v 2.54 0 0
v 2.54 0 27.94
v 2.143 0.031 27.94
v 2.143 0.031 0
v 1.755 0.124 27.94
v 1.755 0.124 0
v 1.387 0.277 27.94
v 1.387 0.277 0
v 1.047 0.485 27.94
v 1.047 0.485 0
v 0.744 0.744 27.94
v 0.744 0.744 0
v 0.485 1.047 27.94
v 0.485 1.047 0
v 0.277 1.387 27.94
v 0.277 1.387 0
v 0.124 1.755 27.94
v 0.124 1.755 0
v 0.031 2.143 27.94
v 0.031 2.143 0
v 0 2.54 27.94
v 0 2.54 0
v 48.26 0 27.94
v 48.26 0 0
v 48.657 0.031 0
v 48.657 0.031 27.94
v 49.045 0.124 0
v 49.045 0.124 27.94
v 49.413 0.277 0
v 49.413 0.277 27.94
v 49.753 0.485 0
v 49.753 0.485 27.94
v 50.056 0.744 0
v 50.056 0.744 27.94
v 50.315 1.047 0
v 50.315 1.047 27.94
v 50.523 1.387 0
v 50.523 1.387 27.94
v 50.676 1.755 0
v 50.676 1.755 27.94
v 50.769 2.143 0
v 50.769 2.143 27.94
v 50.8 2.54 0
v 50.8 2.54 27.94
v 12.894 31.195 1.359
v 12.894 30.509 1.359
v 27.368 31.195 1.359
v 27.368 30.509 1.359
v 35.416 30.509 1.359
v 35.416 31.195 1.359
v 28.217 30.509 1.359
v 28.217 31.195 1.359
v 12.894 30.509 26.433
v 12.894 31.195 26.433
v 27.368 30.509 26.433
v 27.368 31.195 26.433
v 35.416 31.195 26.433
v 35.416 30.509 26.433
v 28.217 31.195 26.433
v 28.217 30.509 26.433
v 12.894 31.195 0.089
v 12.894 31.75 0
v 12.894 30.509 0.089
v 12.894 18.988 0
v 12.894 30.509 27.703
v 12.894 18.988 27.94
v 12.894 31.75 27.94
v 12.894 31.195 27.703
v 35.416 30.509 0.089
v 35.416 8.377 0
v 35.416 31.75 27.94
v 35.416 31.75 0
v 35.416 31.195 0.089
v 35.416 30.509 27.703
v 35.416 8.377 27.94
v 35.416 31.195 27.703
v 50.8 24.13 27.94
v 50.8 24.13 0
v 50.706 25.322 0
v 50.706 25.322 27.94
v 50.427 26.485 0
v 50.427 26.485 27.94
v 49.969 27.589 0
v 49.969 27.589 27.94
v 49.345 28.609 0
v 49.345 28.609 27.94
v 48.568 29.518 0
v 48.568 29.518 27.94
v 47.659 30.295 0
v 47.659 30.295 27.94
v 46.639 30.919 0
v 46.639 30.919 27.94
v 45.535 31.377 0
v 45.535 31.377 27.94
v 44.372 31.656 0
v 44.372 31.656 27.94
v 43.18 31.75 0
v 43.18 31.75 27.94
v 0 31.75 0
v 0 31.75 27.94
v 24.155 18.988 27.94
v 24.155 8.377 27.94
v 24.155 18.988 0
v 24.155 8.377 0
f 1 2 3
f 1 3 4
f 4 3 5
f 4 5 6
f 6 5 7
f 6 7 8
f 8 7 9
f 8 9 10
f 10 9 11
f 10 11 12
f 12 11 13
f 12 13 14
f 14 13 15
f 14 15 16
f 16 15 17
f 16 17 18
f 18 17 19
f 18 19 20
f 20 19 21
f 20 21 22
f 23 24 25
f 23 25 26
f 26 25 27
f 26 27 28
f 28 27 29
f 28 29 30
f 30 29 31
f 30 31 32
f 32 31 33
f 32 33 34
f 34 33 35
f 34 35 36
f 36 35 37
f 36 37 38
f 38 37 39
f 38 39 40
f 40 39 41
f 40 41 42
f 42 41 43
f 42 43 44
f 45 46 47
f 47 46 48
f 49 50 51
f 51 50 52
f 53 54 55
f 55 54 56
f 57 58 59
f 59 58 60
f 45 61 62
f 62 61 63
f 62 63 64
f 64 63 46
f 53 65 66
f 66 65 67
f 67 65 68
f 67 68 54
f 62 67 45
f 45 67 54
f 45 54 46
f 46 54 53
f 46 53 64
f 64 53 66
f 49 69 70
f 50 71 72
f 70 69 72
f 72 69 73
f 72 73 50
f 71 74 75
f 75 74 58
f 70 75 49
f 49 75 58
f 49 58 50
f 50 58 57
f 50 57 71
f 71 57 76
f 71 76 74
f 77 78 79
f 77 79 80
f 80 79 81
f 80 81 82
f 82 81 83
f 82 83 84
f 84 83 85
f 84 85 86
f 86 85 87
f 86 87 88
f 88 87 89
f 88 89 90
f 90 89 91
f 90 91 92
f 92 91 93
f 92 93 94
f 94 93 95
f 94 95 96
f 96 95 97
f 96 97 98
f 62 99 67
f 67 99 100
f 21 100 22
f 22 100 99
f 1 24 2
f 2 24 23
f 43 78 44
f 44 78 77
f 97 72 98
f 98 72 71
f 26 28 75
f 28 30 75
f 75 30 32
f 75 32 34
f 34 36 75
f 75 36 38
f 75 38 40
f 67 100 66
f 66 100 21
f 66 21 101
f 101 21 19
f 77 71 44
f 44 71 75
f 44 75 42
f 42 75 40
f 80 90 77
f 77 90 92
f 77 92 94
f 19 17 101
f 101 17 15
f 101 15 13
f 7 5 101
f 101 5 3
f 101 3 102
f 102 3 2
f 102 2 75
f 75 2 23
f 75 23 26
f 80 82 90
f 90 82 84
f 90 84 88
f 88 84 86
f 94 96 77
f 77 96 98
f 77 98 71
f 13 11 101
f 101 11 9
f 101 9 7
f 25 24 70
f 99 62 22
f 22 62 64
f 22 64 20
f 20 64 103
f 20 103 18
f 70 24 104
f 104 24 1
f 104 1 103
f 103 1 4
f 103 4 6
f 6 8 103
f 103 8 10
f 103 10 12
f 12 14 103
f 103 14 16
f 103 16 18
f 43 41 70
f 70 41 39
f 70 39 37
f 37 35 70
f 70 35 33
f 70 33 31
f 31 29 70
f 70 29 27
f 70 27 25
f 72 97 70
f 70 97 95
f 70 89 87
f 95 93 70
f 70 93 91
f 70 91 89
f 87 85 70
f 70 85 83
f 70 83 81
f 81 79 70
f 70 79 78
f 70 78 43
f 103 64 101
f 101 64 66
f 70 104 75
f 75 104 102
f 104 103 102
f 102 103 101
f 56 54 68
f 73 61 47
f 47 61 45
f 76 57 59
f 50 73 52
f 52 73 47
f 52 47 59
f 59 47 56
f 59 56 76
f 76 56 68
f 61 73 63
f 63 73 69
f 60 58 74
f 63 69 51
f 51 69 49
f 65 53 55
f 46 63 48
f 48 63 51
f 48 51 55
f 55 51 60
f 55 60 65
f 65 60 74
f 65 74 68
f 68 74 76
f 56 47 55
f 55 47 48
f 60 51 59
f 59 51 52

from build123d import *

# Parameters (mm, degrees)
SKETCH2_W           = 50.8
SKETCH2_H           = 31.75
BOSS_EXTRUDE1_DEPTH = 27.94
CUT_EXTRUDE2_DEPTH  = 27.94
FILLET1_R           = 7.62
SKETCH5_W           = 1.27
SKETCH5_H           = 0.685488516
BOSS_EXTRUDE2_DEPTH = 27.94
SKETCH6_W           = 0.849135511
SKETCH6_H           = 0.685488516
BOSS_EXTRUDE3_DEPTH = 25.4
FILLET2_R           = 2.54
FILLET3_R           = 2.54


with BuildPart() as part:
    # Sketch2 → Boss-Extrude1 (new body)
    with BuildSketch(Plane.XY):
        with Locations((25.4, 15.875)):
            Rectangle(SKETCH2_W, SKETCH2_H)
    extrude(amount=BOSS_EXTRUDE1_DEPTH)

    # Sketch3 → Cut-Extrude2 (cut)
    with BuildSketch(Plane.XY.offset(27.94)):
        Polygon((24.154806831, 18.987982921), (24.154806831, 8.376771572), (35.415684182, 8.376771572), (35.415684182, 18.987982921), (35.415684182, 31.75), (12.893929481, 31.75), (12.893929481, 18.987982921), align=None)
    extrude(amount=-CUT_EXTRUDE2_DEPTH, mode=Mode.SUBTRACT)

    # Fillet1
    fillet1_edges = [part.edges().sort_by_distance(p)[0] for p in [
        (50.8, 31.75, 13.97),
    ]]
    fillet(fillet1_edges, radius=FILLET1_R)

    # Sketch5 → Boss-Extrude2 (add)
    with BuildSketch(Plane.ZY.offset(-35.415684182)):
        with Locations((0.724212181, 30.851974388)):
            Rectangle(SKETCH5_W, SKETCH5_H)
        with Locations((27.068073402, 30.851974388)):
            Rectangle(SKETCH5_W, SKETCH5_H)
    extrude(amount=BOSS_EXTRUDE2_DEPTH)

    # Sketch6 → Boss-Extrude3 (add)
    with BuildSketch(Plane.XY.offset(1.359212181)):
        with Locations((27.792387074, 30.851974388)):
            Rectangle(SKETCH6_W, SKETCH6_H)
    extrude(amount=BOSS_EXTRUDE3_DEPTH)

    # Fillet2
    fillet2_edges = [part.edges().sort_by_distance(p)[0] for p in [
        (50.8, 0, 13.97),
    ]]
    fillet(fillet2_edges, radius=FILLET2_R)

    # Fillet3
    fillet3_edges = [part.edges().sort_by_distance(p)[0] for p in [
        (0, 0, 13.97),
    ]]
    fillet(fillet3_edges, radius=FILLET3_R)


solid = part.part
